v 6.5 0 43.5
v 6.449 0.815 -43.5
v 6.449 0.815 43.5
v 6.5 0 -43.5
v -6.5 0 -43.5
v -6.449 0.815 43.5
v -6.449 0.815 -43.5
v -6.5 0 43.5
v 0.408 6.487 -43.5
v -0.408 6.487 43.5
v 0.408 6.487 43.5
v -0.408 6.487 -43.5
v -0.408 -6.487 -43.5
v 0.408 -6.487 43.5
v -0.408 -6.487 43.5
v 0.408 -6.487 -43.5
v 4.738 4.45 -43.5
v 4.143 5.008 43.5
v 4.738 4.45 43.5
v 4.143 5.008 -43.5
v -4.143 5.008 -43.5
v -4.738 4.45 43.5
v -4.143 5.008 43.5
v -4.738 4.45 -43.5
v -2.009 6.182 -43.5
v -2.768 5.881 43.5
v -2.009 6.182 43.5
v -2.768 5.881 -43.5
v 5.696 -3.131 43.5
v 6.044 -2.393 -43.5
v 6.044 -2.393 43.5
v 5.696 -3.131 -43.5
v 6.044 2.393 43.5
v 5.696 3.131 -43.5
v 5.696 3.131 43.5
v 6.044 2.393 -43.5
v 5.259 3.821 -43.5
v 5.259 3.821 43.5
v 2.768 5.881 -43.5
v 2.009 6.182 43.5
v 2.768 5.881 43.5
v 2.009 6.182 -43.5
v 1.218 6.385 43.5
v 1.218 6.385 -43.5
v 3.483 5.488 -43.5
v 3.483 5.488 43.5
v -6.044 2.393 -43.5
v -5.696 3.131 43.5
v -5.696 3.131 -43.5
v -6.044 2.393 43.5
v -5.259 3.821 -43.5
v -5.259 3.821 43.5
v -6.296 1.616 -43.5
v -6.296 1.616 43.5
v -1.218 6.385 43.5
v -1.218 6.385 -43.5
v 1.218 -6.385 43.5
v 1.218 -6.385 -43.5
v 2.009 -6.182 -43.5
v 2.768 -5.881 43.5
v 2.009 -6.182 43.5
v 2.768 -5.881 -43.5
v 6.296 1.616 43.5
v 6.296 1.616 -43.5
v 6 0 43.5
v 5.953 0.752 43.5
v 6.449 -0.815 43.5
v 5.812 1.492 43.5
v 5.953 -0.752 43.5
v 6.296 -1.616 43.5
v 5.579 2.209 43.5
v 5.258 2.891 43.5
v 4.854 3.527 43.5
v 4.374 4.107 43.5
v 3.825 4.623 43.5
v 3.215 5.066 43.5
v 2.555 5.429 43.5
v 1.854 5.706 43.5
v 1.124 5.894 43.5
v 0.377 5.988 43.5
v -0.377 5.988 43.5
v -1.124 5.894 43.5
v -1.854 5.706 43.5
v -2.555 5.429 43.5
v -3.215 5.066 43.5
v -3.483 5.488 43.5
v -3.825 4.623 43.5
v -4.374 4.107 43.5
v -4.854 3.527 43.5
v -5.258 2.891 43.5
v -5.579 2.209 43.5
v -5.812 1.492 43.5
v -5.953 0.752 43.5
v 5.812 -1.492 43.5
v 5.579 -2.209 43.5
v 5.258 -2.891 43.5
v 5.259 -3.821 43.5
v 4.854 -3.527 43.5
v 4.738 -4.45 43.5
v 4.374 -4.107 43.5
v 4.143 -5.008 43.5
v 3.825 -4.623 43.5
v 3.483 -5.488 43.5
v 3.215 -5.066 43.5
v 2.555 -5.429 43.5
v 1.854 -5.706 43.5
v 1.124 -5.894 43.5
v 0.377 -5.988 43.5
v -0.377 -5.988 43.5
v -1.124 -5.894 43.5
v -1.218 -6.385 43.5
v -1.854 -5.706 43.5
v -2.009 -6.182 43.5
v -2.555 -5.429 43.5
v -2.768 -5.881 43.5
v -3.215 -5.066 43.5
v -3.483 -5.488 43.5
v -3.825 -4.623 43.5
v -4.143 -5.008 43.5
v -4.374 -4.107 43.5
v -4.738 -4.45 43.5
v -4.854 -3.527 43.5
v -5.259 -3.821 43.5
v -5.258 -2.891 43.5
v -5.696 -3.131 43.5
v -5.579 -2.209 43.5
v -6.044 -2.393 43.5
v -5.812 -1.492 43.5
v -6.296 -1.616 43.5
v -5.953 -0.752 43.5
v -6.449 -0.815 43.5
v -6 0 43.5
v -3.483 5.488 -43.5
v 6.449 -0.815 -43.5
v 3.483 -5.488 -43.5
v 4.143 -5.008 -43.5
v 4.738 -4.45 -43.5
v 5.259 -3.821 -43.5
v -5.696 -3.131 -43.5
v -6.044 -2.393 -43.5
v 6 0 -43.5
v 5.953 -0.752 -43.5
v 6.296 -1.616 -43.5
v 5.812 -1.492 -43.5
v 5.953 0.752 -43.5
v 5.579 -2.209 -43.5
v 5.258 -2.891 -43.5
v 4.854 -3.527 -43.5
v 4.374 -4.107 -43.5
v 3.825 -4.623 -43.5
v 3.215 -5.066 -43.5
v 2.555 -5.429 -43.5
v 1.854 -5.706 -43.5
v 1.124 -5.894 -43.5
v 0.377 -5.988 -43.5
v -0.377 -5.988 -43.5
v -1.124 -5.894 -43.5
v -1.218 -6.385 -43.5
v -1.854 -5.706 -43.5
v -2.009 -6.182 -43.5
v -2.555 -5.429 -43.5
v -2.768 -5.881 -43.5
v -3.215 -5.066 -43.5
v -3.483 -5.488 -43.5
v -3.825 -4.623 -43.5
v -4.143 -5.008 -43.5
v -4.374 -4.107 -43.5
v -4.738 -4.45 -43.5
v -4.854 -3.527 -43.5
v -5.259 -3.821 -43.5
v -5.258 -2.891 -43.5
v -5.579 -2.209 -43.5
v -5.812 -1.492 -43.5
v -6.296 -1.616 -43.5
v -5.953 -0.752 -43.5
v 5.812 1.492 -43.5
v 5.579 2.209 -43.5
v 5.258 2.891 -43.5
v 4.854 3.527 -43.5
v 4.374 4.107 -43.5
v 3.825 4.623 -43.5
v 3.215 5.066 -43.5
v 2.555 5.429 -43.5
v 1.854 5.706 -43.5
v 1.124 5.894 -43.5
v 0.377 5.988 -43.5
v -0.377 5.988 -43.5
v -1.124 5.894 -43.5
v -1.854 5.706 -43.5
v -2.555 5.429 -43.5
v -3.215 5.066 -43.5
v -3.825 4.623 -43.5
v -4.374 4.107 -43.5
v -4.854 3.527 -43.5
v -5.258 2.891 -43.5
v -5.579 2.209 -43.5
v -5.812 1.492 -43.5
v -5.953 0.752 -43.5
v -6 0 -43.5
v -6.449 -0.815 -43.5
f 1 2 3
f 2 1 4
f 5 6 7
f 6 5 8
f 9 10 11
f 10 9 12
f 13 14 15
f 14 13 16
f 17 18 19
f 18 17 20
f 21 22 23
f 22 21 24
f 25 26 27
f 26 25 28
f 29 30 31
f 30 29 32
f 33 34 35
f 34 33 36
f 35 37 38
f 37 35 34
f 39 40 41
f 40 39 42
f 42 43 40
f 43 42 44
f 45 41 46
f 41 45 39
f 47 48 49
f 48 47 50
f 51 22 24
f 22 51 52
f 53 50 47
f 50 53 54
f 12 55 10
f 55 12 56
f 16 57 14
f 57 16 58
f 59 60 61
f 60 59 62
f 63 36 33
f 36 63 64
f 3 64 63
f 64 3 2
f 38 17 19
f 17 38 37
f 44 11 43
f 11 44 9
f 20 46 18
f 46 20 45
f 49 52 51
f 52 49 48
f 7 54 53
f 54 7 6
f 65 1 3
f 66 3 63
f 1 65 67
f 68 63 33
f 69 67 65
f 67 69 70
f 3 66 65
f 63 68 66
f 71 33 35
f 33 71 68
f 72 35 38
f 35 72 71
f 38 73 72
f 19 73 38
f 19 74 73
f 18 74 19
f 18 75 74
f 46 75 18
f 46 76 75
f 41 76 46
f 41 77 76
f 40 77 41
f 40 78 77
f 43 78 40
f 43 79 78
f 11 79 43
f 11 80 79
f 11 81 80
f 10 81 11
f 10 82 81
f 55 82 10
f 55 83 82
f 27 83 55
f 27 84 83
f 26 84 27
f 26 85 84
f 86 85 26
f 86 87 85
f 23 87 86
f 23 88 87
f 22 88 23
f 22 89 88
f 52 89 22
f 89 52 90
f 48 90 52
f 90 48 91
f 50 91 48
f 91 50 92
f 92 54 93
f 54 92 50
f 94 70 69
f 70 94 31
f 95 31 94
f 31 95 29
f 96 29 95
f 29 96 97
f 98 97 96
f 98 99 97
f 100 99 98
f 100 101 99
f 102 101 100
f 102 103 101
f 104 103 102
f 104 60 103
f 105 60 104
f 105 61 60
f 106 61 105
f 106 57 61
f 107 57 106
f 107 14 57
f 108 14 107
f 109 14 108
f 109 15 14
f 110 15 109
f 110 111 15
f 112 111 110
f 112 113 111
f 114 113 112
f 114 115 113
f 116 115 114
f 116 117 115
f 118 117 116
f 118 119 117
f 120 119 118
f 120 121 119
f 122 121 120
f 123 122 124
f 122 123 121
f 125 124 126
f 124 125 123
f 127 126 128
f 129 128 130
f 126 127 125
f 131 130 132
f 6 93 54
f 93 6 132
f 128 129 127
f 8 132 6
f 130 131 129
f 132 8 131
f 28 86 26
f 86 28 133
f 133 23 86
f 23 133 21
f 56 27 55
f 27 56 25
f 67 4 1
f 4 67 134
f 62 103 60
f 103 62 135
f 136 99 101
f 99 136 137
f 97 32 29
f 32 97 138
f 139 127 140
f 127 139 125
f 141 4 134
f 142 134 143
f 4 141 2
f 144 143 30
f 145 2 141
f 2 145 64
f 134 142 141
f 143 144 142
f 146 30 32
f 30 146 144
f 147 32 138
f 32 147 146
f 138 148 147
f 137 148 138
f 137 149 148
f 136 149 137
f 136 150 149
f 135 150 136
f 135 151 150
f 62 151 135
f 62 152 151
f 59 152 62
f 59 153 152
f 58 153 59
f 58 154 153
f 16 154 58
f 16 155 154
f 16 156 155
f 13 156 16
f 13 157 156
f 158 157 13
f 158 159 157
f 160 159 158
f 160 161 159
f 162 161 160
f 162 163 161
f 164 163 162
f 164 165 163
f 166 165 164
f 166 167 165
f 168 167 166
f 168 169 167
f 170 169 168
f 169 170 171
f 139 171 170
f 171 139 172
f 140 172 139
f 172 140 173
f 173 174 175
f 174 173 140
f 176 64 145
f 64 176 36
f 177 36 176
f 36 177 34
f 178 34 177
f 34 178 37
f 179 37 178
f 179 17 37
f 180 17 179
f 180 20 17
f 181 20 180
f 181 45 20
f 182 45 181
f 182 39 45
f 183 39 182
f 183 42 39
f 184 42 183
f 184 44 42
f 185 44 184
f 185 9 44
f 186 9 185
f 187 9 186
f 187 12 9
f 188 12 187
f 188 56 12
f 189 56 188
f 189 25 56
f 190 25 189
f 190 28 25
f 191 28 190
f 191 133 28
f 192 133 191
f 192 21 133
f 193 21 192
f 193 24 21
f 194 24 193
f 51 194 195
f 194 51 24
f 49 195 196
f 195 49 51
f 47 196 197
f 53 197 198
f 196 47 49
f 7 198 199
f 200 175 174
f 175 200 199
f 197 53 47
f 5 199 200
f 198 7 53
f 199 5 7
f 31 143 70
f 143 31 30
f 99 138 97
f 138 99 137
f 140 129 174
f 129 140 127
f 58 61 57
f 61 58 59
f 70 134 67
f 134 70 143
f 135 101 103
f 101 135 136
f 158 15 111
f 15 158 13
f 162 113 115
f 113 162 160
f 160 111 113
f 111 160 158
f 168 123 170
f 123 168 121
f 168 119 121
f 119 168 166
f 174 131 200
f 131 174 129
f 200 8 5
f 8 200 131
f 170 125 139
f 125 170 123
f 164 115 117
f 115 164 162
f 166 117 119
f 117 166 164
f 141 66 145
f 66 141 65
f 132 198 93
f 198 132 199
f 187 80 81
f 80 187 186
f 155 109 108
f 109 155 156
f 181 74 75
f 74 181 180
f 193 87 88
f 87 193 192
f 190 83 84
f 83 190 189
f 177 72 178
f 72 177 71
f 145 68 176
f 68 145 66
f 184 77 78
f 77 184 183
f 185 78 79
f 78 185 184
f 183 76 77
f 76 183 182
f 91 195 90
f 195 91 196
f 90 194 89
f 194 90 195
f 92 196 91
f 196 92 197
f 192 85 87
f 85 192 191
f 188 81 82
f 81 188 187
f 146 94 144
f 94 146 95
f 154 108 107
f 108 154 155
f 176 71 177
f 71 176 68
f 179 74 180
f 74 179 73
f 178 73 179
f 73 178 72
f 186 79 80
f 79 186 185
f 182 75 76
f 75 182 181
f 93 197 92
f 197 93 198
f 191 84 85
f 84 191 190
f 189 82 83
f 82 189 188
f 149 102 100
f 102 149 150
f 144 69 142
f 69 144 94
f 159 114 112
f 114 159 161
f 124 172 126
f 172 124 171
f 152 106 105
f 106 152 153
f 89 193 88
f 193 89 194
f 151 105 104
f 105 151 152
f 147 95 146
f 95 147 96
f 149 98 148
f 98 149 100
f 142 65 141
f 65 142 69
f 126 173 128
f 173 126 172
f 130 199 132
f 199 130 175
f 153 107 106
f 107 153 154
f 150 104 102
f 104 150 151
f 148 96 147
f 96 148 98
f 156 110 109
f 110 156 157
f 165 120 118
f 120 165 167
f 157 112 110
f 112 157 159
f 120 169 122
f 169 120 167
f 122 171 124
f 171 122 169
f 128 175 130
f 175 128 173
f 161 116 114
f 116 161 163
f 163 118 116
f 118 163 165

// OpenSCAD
$fn = 50;


difference() {
	union() {
		translate(v = [0, 0, -43.5000000000]) {
			cylinder(h = 87, r = 6.5000000000);
		}
	}
	union() {
		translate(v = [0, 0, -100.0000000000]) {
			cylinder(h = 200, r = 6);
		}
	}
}
